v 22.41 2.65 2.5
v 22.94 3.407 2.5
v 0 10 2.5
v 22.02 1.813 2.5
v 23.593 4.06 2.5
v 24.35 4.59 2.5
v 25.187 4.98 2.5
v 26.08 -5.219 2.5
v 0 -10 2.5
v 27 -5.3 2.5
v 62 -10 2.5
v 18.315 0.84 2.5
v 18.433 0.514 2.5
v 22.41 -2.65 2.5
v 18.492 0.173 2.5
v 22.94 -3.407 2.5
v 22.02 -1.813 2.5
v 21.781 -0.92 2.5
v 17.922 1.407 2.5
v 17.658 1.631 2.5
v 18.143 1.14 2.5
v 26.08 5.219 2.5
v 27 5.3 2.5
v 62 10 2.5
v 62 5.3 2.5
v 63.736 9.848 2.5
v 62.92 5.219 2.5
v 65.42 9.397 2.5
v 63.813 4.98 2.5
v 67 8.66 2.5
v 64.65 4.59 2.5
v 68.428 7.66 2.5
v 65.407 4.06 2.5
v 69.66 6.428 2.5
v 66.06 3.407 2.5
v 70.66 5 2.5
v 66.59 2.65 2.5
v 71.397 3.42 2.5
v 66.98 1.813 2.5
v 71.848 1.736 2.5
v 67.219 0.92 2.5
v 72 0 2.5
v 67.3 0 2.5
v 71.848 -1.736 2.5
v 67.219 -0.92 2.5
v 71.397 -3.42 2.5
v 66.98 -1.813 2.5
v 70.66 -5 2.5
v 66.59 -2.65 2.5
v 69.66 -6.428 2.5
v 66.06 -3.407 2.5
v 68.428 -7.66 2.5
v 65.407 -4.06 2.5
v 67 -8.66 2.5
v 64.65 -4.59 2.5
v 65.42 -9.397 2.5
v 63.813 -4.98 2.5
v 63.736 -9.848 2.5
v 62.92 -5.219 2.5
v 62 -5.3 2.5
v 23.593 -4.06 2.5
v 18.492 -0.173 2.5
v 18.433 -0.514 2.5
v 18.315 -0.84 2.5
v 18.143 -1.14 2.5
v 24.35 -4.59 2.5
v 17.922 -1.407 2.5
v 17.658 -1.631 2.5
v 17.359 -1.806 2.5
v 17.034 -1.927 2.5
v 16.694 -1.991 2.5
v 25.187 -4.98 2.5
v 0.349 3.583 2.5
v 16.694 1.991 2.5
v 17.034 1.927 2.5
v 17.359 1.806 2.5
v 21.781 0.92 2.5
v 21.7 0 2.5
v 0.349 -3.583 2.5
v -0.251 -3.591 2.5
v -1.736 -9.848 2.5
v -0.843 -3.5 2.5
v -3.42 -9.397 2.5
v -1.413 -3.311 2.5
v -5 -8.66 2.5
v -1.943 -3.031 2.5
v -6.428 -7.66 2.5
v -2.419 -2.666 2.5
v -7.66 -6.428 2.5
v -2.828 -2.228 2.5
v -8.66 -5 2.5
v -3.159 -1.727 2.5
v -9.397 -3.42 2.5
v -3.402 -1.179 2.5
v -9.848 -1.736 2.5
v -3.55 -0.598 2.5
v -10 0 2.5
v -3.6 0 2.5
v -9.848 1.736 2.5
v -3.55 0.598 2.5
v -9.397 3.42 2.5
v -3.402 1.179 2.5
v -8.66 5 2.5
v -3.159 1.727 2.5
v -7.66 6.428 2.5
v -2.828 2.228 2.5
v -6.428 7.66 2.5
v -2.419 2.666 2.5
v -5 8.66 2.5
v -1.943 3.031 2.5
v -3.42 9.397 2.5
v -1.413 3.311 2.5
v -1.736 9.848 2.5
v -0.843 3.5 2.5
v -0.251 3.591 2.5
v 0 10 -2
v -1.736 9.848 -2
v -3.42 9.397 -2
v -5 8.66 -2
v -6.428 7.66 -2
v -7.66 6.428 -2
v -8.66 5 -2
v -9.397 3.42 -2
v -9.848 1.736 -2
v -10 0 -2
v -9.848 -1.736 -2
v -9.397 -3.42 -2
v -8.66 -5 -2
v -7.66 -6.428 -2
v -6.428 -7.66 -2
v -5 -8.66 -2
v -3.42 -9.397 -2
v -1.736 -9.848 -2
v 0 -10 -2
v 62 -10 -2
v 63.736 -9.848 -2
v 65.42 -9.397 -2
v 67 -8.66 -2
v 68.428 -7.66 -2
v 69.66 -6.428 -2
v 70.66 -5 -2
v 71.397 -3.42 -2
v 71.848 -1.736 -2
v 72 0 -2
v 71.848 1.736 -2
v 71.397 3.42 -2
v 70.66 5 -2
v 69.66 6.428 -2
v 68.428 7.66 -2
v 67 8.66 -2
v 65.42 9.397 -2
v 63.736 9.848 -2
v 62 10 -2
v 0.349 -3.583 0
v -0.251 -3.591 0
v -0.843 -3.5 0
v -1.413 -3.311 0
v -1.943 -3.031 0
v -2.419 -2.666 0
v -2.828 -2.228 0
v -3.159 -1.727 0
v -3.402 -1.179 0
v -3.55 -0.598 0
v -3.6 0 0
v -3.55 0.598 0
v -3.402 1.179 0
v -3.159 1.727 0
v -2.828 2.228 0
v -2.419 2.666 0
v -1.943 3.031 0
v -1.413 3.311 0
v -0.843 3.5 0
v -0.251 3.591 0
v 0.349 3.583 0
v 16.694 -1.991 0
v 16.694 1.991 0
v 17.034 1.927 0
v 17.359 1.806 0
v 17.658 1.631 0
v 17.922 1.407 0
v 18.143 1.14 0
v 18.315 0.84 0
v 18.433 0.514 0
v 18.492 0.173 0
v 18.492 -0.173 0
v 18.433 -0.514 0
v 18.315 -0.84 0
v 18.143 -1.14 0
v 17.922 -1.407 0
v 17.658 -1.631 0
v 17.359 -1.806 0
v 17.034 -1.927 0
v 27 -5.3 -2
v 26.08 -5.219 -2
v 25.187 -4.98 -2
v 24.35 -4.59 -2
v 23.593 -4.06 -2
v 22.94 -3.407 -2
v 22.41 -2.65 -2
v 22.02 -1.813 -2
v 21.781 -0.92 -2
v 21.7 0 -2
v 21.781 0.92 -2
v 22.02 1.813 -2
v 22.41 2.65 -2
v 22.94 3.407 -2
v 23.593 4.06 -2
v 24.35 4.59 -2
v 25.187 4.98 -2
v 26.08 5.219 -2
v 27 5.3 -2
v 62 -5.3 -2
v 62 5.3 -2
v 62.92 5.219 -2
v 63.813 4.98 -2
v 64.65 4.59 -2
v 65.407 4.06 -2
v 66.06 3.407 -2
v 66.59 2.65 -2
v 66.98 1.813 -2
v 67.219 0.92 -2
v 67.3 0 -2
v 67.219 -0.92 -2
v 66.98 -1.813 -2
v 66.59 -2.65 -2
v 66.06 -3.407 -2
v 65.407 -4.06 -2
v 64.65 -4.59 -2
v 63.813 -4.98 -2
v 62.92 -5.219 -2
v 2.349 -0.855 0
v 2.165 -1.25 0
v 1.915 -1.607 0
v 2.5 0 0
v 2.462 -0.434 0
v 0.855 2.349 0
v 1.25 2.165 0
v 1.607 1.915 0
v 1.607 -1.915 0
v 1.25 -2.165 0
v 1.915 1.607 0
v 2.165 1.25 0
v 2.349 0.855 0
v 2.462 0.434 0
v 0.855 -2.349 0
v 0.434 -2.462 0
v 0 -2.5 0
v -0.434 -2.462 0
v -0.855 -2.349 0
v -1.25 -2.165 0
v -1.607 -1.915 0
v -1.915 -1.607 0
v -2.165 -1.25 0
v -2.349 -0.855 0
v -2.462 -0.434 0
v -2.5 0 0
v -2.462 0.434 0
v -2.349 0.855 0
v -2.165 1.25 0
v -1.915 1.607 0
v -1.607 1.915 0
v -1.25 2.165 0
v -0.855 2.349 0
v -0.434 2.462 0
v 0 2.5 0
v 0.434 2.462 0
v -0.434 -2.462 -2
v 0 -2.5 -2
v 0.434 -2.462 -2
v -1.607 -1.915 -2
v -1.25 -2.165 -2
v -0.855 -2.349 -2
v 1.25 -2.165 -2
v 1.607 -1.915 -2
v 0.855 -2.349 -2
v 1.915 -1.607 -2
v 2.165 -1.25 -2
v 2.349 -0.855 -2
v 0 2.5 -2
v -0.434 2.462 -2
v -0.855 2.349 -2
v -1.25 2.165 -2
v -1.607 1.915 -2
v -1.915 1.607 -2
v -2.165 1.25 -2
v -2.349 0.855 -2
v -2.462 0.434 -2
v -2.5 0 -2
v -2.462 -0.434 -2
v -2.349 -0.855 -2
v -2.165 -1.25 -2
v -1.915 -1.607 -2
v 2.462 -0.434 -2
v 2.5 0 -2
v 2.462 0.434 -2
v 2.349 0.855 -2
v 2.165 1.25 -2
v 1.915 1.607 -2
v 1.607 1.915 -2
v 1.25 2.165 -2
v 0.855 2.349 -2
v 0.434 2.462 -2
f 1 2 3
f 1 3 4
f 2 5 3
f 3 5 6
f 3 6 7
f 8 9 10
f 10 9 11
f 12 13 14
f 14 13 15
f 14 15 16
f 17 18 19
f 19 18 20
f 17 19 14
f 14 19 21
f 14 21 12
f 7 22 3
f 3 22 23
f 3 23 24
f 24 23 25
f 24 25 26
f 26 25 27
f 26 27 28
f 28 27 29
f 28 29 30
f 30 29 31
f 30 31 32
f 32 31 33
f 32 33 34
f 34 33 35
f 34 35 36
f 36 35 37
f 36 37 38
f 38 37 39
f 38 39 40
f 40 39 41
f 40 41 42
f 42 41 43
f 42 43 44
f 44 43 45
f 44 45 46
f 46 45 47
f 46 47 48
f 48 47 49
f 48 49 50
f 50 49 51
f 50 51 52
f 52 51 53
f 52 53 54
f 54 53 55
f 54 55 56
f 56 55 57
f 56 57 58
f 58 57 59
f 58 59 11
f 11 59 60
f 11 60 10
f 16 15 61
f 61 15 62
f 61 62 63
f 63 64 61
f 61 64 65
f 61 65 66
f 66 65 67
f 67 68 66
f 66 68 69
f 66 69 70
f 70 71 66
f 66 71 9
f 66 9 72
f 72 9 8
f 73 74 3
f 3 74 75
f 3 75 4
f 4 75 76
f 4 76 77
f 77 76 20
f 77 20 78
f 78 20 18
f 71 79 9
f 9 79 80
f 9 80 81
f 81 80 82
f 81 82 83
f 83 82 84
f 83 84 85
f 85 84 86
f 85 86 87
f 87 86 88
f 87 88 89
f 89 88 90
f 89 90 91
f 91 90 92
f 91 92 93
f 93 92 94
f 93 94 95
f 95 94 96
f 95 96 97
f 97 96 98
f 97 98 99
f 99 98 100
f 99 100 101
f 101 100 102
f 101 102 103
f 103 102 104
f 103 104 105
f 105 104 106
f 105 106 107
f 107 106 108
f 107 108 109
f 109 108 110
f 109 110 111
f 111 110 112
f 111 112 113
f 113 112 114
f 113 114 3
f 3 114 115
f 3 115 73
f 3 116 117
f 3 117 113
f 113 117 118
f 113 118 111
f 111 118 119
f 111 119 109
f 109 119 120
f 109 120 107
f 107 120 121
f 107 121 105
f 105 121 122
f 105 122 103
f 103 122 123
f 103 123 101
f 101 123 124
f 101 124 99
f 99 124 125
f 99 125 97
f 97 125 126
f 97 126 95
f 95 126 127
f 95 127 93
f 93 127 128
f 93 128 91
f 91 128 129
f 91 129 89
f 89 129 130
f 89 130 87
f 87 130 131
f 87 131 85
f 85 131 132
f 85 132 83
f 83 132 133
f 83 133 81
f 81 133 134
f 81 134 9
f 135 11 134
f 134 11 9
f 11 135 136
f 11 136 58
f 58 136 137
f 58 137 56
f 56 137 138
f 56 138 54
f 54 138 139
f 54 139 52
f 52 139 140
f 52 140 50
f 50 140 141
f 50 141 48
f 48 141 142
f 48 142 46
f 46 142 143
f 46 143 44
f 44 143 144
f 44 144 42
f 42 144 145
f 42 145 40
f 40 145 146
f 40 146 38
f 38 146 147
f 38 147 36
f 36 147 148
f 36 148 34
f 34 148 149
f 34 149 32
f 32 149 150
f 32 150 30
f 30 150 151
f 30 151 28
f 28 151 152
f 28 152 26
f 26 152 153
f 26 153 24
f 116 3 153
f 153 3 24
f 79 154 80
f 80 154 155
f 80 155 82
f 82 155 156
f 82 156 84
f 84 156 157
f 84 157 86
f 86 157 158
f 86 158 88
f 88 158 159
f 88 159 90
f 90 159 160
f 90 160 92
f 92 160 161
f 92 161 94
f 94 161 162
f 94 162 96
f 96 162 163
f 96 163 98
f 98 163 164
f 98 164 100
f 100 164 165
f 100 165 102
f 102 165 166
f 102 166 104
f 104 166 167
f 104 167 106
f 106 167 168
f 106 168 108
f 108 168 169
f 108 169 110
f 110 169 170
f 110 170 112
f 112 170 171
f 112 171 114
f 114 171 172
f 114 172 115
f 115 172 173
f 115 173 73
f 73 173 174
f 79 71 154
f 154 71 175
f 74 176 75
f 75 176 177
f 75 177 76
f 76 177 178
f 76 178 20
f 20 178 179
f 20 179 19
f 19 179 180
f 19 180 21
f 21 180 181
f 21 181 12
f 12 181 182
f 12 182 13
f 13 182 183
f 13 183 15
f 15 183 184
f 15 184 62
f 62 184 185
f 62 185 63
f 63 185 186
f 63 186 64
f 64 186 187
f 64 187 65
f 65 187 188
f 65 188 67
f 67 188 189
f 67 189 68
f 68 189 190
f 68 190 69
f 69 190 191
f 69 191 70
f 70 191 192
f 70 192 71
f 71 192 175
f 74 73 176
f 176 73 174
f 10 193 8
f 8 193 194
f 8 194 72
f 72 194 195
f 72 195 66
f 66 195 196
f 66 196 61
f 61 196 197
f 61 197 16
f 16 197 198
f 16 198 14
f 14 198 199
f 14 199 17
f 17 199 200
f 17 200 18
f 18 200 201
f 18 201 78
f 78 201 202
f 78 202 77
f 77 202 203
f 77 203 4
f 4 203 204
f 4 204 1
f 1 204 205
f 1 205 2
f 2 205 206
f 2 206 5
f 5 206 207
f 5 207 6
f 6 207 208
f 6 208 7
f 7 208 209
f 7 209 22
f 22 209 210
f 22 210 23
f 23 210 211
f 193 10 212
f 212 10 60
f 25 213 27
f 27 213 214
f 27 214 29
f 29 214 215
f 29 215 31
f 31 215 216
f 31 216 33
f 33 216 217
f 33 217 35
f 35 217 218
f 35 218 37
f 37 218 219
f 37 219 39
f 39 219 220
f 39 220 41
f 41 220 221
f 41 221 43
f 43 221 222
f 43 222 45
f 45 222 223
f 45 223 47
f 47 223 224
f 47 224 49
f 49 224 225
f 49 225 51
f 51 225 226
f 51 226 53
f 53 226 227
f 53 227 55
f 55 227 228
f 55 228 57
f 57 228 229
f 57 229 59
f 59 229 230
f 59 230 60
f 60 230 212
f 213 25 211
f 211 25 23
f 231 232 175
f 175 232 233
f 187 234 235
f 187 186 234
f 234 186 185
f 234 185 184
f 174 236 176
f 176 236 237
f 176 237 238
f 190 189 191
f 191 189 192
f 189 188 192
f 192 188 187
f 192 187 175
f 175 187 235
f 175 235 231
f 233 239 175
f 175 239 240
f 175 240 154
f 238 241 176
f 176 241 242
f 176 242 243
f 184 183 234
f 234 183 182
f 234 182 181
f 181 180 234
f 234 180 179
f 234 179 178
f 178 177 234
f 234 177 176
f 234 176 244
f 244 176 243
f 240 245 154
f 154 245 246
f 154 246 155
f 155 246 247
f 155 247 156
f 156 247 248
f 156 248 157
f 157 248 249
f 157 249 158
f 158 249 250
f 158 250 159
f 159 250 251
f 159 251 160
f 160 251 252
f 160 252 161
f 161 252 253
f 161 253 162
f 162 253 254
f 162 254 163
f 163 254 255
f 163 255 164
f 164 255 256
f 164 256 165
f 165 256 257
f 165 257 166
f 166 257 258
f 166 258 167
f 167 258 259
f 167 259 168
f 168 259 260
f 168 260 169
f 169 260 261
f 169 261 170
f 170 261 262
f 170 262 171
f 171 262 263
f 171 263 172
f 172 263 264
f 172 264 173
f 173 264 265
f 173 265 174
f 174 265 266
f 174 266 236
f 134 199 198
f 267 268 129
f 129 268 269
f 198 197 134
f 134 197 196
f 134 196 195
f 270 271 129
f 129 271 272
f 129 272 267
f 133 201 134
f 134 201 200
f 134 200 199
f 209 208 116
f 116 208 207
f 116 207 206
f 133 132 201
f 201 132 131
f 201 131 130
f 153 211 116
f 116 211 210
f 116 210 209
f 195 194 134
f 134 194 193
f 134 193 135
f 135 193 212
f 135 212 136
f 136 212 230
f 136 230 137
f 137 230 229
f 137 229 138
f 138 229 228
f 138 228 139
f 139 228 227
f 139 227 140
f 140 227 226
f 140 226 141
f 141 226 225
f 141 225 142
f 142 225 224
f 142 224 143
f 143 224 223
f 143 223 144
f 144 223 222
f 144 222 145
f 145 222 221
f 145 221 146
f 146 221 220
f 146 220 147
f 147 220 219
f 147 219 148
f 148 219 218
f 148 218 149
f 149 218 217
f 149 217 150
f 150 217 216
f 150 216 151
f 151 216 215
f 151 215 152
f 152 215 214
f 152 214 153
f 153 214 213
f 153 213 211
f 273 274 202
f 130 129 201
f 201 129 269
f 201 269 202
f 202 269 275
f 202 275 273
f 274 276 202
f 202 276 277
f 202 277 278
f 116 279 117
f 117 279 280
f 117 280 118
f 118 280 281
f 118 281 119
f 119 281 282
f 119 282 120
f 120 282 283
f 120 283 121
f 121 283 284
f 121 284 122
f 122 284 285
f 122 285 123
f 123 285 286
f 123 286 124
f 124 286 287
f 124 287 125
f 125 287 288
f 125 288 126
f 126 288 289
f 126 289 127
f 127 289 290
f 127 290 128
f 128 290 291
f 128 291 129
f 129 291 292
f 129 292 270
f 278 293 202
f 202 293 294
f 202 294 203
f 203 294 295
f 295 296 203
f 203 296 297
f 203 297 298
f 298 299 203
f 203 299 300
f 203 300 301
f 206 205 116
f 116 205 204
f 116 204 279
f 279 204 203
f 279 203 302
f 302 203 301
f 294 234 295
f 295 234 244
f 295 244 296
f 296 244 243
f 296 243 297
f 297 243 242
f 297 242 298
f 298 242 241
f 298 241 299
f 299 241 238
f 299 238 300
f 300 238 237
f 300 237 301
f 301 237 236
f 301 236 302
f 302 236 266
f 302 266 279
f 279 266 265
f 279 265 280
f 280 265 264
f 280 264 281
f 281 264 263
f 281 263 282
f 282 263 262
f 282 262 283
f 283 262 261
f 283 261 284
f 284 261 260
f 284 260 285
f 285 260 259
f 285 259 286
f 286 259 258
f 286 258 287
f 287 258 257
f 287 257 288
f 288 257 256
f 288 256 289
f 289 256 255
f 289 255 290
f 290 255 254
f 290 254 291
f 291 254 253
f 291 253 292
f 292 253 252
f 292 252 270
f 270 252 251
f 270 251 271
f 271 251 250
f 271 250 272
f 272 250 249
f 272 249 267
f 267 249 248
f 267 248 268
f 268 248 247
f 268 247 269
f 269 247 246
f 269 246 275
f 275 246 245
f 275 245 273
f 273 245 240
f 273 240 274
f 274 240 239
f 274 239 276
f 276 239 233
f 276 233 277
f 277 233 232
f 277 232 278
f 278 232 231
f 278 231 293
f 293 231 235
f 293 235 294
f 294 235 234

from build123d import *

# Parameters (mm, degrees)
MAIN_DEPTH            = 2.5
ESQUISSE2_R           = 2.5
ORIGINALBRACKET_DEPTH = 2
CUT_EXTRUDE1_DEPTH    = 3


with BuildPart() as part:
    # Esquisse1 → Main (new body)
    with BuildSketch(Plane.XY):
        with BuildLine():
            Line((0, 10), (62, 10))
            ThreePointArc((62, 10), (72, 0), (62, -10))
            Line((62, -10), (0, -10))
            ThreePointArc((0, -10), (-10, 0), (0, 10))
        make_face()
        with BuildLine():
            Line((0.349090909, 3.583034404), (16.693939394, 1.990574669))
            ThreePointArc((16.693939394, 1.990574669), (18.5, 0), (16.693939394, -1.990574669))
            Line((16.693939394, -1.990574669), (0.349090909, -3.583034404))
            ThreePointArc((0.349090909, -3.583034404), (-3.6, 0), (0.349090909, 3.583034404))
        make_face(mode=Mode.SUBTRACT)
        with BuildLine():
            Line((27, 5.3), (62, 5.3))
            ThreePointArc((62, 5.3), (67.3, 0), (62, -5.3))
            Line((62, -5.3), (27, -5.3))
            ThreePointArc((27, -5.3), (21.7, 0), (27, 5.3))
        make_face(mode=Mode.SUBTRACT)
    extrude(amount=MAIN_DEPTH)

    # Esquisse2 → OriginalBracket (add)
    with BuildSketch(Plane(origin=(0, 0, 0), x_dir=(-1, 0, 0), z_dir=(0, 0, -1))):
        with BuildLine():
            Line((0, -10), (-62, -10))
            ThreePointArc((-62, -10), (-72, 0), (-62, 10))
            Line((-62, 10), (0, 10))
            ThreePointArc((0, 10), (10, 0), (0, -10))
        make_face()
        Circle(ESQUISSE2_R, mode=Mode.SUBTRACT)
    extrude(amount=ORIGINALBRACKET_DEPTH)

    # Sketch1 → Cut-Extrude1 (cut, through all)
    with BuildSketch(Plane.XY):
        with BuildLine():
            Line((27, 5.3), (62, 5.3))
            ThreePointArc((62, 5.3), (67.3, 0), (62, -5.3))
            Line((62, -5.3), (27, -5.3))
            ThreePointArc((27, -5.3), (21.7, 0), (27, 5.3))
        make_face()
    extrude(amount=-CUT_EXTRUDE1_DEPTH, mode=Mode.SUBTRACT)


solid = part.part
